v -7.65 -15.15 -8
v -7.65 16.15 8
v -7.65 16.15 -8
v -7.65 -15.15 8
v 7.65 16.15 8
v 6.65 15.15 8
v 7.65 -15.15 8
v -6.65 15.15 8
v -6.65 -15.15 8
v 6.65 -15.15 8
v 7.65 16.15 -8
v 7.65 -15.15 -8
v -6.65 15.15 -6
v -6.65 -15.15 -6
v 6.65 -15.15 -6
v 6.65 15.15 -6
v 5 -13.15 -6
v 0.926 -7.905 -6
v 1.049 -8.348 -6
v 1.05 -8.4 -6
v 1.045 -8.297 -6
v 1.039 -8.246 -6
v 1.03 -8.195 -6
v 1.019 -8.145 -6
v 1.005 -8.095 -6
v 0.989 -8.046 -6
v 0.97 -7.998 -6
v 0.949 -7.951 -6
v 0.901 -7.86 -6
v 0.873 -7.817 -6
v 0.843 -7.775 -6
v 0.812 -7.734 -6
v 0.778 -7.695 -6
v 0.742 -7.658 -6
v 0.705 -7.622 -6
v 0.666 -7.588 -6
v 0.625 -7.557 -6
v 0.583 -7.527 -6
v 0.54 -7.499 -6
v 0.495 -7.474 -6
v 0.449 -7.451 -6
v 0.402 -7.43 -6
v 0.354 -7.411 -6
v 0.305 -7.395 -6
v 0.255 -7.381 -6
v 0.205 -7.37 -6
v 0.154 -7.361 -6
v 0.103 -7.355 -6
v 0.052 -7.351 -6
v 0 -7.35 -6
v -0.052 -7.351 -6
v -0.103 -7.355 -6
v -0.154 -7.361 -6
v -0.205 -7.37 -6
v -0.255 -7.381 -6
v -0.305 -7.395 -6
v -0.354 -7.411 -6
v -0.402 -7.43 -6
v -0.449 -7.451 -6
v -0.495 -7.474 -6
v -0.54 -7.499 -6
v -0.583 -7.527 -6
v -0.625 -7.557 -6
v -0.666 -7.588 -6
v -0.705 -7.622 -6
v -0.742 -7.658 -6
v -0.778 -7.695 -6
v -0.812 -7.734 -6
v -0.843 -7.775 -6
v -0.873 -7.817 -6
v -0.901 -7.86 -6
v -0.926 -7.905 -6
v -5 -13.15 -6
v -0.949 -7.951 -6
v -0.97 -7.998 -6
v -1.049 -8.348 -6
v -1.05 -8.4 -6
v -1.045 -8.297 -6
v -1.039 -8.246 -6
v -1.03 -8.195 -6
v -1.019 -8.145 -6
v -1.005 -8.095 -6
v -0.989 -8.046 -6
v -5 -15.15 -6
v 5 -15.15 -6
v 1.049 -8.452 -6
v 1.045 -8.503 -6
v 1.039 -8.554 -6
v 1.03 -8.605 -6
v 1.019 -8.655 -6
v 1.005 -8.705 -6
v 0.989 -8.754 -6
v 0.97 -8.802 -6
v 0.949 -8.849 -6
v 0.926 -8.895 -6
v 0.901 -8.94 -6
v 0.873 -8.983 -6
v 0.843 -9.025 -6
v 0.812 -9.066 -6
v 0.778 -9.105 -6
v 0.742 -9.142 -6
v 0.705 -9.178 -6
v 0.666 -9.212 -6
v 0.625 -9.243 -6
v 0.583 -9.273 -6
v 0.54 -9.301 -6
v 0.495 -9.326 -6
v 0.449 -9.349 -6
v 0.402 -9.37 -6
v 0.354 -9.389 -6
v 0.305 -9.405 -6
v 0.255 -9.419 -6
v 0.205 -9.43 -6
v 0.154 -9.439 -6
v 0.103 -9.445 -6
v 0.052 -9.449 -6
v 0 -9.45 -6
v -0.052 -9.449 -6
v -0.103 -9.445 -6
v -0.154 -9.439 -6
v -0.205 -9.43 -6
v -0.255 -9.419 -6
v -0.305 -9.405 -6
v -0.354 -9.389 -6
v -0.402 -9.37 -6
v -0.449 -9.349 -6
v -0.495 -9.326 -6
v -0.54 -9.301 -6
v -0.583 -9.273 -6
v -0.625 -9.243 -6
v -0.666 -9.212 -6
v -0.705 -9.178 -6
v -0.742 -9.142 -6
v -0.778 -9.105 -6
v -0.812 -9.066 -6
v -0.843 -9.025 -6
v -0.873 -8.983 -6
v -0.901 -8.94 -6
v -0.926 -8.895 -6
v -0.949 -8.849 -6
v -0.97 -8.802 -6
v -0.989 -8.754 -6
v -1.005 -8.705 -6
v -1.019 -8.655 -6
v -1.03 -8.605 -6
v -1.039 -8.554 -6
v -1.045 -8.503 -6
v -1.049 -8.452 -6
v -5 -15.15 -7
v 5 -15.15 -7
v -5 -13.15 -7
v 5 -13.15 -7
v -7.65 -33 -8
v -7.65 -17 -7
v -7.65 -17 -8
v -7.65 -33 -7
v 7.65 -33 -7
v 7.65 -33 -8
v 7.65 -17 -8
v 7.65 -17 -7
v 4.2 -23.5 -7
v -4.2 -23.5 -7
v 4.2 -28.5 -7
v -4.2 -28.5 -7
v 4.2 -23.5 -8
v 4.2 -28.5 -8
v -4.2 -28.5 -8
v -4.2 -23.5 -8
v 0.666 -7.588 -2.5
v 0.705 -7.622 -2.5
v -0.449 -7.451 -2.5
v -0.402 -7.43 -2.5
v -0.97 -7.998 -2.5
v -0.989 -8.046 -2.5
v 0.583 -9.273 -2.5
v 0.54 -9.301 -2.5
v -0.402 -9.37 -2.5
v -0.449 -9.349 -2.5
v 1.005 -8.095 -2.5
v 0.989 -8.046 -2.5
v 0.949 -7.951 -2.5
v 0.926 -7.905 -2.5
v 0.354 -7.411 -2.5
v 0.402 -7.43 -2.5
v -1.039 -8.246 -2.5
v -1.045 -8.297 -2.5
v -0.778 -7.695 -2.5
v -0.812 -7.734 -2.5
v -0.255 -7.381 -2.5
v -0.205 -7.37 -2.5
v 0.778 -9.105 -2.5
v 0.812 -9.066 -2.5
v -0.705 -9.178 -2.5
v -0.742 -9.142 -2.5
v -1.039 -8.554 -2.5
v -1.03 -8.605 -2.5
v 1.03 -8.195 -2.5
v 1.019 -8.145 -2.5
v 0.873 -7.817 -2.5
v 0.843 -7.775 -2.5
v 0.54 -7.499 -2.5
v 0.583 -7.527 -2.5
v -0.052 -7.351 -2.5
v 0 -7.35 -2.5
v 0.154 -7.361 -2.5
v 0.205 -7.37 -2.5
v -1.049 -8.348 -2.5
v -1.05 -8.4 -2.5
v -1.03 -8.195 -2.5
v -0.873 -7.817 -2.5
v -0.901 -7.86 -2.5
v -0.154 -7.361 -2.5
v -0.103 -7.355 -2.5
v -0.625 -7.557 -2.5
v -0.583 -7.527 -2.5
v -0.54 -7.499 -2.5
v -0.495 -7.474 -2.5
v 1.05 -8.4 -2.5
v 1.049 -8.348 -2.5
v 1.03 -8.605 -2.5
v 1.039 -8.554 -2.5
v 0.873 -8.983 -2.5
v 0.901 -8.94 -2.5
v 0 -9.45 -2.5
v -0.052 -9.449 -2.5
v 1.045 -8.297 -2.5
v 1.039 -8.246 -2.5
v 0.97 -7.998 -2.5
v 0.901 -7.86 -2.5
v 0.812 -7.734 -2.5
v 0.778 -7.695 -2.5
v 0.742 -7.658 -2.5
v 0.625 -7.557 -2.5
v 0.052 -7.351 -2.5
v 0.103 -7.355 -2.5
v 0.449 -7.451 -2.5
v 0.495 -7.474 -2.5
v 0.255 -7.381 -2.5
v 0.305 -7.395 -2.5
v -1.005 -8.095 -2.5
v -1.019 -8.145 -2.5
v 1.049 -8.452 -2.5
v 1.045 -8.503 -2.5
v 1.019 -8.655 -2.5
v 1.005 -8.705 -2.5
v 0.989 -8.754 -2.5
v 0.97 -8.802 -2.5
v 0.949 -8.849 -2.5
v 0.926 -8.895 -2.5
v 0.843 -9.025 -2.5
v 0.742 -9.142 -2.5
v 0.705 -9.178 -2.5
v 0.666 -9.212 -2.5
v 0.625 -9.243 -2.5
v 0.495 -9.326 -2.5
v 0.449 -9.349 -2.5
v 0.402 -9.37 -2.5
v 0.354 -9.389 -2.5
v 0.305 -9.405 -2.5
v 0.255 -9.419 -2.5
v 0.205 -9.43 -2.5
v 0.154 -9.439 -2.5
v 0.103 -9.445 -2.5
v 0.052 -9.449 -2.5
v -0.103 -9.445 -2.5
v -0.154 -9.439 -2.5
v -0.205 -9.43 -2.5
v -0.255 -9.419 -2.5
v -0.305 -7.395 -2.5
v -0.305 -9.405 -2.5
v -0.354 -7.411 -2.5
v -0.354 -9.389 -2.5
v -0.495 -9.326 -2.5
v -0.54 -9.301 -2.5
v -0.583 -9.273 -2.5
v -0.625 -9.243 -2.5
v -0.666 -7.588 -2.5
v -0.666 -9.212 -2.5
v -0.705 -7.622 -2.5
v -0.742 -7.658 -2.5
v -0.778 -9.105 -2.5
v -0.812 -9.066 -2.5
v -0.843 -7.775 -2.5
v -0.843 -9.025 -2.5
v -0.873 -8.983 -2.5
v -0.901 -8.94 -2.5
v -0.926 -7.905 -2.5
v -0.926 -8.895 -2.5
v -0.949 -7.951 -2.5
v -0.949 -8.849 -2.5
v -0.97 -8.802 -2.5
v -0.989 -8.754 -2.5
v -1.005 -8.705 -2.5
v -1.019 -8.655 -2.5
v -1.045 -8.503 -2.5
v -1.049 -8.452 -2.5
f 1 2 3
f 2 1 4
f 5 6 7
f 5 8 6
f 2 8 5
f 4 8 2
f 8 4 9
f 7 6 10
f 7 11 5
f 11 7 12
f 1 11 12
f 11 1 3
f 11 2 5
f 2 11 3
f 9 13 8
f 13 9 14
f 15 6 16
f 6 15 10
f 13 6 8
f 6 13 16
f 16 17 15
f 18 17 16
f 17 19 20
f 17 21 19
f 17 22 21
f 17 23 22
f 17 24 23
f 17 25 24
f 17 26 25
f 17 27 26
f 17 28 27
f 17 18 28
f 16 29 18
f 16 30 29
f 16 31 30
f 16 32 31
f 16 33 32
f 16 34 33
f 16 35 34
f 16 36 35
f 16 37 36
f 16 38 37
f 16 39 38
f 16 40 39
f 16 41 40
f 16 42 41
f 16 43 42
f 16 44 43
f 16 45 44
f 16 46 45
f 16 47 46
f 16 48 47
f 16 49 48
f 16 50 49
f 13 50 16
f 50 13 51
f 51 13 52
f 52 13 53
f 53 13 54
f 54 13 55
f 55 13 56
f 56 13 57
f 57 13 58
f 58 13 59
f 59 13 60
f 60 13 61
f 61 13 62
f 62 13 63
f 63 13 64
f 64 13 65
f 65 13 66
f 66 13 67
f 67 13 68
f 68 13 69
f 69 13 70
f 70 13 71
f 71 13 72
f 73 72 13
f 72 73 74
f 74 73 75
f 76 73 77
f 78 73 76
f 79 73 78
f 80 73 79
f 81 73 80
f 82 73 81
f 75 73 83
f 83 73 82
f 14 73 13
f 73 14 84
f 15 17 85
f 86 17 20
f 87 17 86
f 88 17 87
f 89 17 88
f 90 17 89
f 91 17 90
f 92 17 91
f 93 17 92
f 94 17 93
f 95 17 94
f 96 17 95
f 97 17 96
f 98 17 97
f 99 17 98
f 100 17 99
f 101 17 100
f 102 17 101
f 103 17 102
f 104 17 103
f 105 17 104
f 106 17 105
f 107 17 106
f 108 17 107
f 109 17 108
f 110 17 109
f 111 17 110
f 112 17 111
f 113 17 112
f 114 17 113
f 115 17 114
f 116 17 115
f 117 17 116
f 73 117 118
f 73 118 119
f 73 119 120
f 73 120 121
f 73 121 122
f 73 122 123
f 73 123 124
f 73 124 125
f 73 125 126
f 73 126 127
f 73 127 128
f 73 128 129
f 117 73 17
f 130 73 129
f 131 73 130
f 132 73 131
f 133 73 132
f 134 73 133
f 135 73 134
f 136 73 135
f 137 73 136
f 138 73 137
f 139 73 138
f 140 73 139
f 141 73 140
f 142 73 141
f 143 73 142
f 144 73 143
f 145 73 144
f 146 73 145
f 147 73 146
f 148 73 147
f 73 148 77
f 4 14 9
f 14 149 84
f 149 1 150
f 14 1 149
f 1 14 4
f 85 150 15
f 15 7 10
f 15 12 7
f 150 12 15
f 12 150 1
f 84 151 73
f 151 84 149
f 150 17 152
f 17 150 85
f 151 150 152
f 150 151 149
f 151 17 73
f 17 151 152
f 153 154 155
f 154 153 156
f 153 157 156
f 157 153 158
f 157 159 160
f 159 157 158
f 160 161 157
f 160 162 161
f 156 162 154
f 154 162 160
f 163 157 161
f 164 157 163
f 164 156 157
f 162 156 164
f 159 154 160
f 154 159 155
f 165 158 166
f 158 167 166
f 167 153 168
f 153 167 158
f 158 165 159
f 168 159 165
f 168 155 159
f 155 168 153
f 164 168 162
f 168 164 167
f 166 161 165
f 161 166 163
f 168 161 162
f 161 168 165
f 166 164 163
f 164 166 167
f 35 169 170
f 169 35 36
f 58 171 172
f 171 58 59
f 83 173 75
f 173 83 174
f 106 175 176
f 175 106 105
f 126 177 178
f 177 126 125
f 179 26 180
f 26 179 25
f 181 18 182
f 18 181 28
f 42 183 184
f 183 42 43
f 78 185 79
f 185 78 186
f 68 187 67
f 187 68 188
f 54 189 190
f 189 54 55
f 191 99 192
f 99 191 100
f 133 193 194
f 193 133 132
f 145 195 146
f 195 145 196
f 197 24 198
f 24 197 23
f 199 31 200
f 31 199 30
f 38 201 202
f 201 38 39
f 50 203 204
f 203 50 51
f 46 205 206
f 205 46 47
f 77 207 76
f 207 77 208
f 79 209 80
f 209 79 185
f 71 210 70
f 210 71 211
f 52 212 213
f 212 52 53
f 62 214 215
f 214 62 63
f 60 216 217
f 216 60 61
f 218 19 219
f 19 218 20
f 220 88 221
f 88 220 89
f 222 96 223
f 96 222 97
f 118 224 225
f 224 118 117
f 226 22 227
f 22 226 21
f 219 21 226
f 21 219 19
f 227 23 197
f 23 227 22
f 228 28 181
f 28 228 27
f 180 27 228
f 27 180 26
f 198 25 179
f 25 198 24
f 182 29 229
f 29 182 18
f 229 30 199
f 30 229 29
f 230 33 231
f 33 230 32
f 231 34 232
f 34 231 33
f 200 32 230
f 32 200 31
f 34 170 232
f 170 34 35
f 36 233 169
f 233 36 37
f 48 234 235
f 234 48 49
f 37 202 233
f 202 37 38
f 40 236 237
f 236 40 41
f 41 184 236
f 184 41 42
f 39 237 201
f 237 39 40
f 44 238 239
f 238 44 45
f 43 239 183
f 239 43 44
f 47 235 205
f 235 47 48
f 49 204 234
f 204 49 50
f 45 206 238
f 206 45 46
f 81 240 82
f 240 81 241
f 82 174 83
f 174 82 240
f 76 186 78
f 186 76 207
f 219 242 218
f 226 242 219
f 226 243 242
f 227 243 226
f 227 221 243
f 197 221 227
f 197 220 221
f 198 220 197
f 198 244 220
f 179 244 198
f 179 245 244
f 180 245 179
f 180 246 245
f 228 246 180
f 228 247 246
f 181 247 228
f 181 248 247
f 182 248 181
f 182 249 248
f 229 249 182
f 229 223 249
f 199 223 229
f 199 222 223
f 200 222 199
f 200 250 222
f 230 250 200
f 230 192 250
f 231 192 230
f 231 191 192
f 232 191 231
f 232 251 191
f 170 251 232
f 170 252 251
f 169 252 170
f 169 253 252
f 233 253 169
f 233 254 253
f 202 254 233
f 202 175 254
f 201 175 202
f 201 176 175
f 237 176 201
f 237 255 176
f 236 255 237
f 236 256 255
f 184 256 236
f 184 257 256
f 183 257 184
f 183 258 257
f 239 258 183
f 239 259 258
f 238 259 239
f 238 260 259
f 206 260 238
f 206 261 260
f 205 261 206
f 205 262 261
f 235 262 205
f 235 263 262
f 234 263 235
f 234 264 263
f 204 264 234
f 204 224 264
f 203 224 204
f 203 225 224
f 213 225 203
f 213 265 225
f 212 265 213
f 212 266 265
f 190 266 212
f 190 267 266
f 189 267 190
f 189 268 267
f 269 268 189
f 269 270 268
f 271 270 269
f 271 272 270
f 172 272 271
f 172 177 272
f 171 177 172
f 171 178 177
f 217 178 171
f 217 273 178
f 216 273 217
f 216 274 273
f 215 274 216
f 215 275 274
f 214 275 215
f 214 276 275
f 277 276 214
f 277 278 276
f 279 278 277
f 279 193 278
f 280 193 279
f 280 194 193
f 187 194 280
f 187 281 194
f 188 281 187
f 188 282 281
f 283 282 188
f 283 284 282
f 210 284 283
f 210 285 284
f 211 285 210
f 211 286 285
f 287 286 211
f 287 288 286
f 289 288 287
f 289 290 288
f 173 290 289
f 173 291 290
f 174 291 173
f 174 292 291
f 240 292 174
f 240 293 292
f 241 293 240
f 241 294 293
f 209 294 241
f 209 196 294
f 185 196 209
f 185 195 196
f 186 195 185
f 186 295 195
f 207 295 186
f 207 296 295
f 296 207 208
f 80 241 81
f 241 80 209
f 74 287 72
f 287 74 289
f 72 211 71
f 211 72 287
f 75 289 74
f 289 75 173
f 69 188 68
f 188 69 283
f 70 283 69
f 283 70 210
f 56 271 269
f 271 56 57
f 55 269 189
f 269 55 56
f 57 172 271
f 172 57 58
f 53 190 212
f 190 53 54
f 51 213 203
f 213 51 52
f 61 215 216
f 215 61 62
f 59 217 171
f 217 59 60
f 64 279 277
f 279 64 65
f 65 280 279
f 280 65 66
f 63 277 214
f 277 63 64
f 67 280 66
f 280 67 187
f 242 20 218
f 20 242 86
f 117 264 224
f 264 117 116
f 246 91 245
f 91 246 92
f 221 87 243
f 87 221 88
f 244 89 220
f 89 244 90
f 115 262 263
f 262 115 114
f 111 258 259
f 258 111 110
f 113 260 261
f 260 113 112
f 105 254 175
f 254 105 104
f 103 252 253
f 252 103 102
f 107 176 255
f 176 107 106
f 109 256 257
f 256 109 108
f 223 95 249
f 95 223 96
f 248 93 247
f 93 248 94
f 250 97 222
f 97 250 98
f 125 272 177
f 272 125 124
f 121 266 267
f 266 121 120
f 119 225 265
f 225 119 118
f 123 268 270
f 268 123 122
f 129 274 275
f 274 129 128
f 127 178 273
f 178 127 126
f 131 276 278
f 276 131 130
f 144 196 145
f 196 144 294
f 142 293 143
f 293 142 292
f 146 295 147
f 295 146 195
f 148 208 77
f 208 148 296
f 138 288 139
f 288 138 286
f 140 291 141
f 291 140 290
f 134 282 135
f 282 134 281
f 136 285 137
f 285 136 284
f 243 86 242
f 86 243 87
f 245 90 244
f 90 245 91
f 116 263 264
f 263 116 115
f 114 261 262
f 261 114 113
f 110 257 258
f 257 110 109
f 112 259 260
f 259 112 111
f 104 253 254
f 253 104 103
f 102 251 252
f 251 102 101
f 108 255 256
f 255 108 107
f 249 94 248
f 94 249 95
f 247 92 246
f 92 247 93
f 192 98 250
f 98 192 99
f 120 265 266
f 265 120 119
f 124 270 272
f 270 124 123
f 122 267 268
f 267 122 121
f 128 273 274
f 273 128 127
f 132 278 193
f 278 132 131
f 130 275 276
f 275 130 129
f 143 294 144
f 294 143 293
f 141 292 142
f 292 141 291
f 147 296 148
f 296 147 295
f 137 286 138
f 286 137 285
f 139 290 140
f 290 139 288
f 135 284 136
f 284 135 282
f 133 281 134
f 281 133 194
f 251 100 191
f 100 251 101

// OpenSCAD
width = 13.3;
height = 30.3;
depth = 14; //module's height is only 8

hole_offset_from_top = 6.75;
diameter = 2.1;
width_cable_opening = 8.4;
height_cable_opening = 5.4;


difference()
{
    //base
    cube([width+2, height+2, depth+2], center = true);
    
    //cube difference
    translate([0,0,1])
    cube([width, height, depth], center = true);
    
    //opening for connections
    translate([0,-height/2,2])
    cube([width_cable_opening, height_cable_opening, 2], center = true);
    
    translate([0,-((height/2)+0.5),0])
    rotate([0,0,0])
    cube([width+2,1,depth+2], center = true);
    
    translate([0,-((height/2)-1),-((depth/2)-0.5)])
    cube([10,2,1], center = true);
  
}

translate([0,-(height/2-hole_offset_from_top),-(depth/2)+2])
cylinder(h = 5, r=diameter/2, $fn = 128, center = true);


//top
difference(){

    translate([0,-25,-(depth/2+0.5)])
    rotate([90,0,0])
    cube([width+2,1,depth+2], center = true);
    
    translate([0,-26,-(depth/2+0.5)])
    cube([width_cable_opening,5,depth+2], center = true);

} 
